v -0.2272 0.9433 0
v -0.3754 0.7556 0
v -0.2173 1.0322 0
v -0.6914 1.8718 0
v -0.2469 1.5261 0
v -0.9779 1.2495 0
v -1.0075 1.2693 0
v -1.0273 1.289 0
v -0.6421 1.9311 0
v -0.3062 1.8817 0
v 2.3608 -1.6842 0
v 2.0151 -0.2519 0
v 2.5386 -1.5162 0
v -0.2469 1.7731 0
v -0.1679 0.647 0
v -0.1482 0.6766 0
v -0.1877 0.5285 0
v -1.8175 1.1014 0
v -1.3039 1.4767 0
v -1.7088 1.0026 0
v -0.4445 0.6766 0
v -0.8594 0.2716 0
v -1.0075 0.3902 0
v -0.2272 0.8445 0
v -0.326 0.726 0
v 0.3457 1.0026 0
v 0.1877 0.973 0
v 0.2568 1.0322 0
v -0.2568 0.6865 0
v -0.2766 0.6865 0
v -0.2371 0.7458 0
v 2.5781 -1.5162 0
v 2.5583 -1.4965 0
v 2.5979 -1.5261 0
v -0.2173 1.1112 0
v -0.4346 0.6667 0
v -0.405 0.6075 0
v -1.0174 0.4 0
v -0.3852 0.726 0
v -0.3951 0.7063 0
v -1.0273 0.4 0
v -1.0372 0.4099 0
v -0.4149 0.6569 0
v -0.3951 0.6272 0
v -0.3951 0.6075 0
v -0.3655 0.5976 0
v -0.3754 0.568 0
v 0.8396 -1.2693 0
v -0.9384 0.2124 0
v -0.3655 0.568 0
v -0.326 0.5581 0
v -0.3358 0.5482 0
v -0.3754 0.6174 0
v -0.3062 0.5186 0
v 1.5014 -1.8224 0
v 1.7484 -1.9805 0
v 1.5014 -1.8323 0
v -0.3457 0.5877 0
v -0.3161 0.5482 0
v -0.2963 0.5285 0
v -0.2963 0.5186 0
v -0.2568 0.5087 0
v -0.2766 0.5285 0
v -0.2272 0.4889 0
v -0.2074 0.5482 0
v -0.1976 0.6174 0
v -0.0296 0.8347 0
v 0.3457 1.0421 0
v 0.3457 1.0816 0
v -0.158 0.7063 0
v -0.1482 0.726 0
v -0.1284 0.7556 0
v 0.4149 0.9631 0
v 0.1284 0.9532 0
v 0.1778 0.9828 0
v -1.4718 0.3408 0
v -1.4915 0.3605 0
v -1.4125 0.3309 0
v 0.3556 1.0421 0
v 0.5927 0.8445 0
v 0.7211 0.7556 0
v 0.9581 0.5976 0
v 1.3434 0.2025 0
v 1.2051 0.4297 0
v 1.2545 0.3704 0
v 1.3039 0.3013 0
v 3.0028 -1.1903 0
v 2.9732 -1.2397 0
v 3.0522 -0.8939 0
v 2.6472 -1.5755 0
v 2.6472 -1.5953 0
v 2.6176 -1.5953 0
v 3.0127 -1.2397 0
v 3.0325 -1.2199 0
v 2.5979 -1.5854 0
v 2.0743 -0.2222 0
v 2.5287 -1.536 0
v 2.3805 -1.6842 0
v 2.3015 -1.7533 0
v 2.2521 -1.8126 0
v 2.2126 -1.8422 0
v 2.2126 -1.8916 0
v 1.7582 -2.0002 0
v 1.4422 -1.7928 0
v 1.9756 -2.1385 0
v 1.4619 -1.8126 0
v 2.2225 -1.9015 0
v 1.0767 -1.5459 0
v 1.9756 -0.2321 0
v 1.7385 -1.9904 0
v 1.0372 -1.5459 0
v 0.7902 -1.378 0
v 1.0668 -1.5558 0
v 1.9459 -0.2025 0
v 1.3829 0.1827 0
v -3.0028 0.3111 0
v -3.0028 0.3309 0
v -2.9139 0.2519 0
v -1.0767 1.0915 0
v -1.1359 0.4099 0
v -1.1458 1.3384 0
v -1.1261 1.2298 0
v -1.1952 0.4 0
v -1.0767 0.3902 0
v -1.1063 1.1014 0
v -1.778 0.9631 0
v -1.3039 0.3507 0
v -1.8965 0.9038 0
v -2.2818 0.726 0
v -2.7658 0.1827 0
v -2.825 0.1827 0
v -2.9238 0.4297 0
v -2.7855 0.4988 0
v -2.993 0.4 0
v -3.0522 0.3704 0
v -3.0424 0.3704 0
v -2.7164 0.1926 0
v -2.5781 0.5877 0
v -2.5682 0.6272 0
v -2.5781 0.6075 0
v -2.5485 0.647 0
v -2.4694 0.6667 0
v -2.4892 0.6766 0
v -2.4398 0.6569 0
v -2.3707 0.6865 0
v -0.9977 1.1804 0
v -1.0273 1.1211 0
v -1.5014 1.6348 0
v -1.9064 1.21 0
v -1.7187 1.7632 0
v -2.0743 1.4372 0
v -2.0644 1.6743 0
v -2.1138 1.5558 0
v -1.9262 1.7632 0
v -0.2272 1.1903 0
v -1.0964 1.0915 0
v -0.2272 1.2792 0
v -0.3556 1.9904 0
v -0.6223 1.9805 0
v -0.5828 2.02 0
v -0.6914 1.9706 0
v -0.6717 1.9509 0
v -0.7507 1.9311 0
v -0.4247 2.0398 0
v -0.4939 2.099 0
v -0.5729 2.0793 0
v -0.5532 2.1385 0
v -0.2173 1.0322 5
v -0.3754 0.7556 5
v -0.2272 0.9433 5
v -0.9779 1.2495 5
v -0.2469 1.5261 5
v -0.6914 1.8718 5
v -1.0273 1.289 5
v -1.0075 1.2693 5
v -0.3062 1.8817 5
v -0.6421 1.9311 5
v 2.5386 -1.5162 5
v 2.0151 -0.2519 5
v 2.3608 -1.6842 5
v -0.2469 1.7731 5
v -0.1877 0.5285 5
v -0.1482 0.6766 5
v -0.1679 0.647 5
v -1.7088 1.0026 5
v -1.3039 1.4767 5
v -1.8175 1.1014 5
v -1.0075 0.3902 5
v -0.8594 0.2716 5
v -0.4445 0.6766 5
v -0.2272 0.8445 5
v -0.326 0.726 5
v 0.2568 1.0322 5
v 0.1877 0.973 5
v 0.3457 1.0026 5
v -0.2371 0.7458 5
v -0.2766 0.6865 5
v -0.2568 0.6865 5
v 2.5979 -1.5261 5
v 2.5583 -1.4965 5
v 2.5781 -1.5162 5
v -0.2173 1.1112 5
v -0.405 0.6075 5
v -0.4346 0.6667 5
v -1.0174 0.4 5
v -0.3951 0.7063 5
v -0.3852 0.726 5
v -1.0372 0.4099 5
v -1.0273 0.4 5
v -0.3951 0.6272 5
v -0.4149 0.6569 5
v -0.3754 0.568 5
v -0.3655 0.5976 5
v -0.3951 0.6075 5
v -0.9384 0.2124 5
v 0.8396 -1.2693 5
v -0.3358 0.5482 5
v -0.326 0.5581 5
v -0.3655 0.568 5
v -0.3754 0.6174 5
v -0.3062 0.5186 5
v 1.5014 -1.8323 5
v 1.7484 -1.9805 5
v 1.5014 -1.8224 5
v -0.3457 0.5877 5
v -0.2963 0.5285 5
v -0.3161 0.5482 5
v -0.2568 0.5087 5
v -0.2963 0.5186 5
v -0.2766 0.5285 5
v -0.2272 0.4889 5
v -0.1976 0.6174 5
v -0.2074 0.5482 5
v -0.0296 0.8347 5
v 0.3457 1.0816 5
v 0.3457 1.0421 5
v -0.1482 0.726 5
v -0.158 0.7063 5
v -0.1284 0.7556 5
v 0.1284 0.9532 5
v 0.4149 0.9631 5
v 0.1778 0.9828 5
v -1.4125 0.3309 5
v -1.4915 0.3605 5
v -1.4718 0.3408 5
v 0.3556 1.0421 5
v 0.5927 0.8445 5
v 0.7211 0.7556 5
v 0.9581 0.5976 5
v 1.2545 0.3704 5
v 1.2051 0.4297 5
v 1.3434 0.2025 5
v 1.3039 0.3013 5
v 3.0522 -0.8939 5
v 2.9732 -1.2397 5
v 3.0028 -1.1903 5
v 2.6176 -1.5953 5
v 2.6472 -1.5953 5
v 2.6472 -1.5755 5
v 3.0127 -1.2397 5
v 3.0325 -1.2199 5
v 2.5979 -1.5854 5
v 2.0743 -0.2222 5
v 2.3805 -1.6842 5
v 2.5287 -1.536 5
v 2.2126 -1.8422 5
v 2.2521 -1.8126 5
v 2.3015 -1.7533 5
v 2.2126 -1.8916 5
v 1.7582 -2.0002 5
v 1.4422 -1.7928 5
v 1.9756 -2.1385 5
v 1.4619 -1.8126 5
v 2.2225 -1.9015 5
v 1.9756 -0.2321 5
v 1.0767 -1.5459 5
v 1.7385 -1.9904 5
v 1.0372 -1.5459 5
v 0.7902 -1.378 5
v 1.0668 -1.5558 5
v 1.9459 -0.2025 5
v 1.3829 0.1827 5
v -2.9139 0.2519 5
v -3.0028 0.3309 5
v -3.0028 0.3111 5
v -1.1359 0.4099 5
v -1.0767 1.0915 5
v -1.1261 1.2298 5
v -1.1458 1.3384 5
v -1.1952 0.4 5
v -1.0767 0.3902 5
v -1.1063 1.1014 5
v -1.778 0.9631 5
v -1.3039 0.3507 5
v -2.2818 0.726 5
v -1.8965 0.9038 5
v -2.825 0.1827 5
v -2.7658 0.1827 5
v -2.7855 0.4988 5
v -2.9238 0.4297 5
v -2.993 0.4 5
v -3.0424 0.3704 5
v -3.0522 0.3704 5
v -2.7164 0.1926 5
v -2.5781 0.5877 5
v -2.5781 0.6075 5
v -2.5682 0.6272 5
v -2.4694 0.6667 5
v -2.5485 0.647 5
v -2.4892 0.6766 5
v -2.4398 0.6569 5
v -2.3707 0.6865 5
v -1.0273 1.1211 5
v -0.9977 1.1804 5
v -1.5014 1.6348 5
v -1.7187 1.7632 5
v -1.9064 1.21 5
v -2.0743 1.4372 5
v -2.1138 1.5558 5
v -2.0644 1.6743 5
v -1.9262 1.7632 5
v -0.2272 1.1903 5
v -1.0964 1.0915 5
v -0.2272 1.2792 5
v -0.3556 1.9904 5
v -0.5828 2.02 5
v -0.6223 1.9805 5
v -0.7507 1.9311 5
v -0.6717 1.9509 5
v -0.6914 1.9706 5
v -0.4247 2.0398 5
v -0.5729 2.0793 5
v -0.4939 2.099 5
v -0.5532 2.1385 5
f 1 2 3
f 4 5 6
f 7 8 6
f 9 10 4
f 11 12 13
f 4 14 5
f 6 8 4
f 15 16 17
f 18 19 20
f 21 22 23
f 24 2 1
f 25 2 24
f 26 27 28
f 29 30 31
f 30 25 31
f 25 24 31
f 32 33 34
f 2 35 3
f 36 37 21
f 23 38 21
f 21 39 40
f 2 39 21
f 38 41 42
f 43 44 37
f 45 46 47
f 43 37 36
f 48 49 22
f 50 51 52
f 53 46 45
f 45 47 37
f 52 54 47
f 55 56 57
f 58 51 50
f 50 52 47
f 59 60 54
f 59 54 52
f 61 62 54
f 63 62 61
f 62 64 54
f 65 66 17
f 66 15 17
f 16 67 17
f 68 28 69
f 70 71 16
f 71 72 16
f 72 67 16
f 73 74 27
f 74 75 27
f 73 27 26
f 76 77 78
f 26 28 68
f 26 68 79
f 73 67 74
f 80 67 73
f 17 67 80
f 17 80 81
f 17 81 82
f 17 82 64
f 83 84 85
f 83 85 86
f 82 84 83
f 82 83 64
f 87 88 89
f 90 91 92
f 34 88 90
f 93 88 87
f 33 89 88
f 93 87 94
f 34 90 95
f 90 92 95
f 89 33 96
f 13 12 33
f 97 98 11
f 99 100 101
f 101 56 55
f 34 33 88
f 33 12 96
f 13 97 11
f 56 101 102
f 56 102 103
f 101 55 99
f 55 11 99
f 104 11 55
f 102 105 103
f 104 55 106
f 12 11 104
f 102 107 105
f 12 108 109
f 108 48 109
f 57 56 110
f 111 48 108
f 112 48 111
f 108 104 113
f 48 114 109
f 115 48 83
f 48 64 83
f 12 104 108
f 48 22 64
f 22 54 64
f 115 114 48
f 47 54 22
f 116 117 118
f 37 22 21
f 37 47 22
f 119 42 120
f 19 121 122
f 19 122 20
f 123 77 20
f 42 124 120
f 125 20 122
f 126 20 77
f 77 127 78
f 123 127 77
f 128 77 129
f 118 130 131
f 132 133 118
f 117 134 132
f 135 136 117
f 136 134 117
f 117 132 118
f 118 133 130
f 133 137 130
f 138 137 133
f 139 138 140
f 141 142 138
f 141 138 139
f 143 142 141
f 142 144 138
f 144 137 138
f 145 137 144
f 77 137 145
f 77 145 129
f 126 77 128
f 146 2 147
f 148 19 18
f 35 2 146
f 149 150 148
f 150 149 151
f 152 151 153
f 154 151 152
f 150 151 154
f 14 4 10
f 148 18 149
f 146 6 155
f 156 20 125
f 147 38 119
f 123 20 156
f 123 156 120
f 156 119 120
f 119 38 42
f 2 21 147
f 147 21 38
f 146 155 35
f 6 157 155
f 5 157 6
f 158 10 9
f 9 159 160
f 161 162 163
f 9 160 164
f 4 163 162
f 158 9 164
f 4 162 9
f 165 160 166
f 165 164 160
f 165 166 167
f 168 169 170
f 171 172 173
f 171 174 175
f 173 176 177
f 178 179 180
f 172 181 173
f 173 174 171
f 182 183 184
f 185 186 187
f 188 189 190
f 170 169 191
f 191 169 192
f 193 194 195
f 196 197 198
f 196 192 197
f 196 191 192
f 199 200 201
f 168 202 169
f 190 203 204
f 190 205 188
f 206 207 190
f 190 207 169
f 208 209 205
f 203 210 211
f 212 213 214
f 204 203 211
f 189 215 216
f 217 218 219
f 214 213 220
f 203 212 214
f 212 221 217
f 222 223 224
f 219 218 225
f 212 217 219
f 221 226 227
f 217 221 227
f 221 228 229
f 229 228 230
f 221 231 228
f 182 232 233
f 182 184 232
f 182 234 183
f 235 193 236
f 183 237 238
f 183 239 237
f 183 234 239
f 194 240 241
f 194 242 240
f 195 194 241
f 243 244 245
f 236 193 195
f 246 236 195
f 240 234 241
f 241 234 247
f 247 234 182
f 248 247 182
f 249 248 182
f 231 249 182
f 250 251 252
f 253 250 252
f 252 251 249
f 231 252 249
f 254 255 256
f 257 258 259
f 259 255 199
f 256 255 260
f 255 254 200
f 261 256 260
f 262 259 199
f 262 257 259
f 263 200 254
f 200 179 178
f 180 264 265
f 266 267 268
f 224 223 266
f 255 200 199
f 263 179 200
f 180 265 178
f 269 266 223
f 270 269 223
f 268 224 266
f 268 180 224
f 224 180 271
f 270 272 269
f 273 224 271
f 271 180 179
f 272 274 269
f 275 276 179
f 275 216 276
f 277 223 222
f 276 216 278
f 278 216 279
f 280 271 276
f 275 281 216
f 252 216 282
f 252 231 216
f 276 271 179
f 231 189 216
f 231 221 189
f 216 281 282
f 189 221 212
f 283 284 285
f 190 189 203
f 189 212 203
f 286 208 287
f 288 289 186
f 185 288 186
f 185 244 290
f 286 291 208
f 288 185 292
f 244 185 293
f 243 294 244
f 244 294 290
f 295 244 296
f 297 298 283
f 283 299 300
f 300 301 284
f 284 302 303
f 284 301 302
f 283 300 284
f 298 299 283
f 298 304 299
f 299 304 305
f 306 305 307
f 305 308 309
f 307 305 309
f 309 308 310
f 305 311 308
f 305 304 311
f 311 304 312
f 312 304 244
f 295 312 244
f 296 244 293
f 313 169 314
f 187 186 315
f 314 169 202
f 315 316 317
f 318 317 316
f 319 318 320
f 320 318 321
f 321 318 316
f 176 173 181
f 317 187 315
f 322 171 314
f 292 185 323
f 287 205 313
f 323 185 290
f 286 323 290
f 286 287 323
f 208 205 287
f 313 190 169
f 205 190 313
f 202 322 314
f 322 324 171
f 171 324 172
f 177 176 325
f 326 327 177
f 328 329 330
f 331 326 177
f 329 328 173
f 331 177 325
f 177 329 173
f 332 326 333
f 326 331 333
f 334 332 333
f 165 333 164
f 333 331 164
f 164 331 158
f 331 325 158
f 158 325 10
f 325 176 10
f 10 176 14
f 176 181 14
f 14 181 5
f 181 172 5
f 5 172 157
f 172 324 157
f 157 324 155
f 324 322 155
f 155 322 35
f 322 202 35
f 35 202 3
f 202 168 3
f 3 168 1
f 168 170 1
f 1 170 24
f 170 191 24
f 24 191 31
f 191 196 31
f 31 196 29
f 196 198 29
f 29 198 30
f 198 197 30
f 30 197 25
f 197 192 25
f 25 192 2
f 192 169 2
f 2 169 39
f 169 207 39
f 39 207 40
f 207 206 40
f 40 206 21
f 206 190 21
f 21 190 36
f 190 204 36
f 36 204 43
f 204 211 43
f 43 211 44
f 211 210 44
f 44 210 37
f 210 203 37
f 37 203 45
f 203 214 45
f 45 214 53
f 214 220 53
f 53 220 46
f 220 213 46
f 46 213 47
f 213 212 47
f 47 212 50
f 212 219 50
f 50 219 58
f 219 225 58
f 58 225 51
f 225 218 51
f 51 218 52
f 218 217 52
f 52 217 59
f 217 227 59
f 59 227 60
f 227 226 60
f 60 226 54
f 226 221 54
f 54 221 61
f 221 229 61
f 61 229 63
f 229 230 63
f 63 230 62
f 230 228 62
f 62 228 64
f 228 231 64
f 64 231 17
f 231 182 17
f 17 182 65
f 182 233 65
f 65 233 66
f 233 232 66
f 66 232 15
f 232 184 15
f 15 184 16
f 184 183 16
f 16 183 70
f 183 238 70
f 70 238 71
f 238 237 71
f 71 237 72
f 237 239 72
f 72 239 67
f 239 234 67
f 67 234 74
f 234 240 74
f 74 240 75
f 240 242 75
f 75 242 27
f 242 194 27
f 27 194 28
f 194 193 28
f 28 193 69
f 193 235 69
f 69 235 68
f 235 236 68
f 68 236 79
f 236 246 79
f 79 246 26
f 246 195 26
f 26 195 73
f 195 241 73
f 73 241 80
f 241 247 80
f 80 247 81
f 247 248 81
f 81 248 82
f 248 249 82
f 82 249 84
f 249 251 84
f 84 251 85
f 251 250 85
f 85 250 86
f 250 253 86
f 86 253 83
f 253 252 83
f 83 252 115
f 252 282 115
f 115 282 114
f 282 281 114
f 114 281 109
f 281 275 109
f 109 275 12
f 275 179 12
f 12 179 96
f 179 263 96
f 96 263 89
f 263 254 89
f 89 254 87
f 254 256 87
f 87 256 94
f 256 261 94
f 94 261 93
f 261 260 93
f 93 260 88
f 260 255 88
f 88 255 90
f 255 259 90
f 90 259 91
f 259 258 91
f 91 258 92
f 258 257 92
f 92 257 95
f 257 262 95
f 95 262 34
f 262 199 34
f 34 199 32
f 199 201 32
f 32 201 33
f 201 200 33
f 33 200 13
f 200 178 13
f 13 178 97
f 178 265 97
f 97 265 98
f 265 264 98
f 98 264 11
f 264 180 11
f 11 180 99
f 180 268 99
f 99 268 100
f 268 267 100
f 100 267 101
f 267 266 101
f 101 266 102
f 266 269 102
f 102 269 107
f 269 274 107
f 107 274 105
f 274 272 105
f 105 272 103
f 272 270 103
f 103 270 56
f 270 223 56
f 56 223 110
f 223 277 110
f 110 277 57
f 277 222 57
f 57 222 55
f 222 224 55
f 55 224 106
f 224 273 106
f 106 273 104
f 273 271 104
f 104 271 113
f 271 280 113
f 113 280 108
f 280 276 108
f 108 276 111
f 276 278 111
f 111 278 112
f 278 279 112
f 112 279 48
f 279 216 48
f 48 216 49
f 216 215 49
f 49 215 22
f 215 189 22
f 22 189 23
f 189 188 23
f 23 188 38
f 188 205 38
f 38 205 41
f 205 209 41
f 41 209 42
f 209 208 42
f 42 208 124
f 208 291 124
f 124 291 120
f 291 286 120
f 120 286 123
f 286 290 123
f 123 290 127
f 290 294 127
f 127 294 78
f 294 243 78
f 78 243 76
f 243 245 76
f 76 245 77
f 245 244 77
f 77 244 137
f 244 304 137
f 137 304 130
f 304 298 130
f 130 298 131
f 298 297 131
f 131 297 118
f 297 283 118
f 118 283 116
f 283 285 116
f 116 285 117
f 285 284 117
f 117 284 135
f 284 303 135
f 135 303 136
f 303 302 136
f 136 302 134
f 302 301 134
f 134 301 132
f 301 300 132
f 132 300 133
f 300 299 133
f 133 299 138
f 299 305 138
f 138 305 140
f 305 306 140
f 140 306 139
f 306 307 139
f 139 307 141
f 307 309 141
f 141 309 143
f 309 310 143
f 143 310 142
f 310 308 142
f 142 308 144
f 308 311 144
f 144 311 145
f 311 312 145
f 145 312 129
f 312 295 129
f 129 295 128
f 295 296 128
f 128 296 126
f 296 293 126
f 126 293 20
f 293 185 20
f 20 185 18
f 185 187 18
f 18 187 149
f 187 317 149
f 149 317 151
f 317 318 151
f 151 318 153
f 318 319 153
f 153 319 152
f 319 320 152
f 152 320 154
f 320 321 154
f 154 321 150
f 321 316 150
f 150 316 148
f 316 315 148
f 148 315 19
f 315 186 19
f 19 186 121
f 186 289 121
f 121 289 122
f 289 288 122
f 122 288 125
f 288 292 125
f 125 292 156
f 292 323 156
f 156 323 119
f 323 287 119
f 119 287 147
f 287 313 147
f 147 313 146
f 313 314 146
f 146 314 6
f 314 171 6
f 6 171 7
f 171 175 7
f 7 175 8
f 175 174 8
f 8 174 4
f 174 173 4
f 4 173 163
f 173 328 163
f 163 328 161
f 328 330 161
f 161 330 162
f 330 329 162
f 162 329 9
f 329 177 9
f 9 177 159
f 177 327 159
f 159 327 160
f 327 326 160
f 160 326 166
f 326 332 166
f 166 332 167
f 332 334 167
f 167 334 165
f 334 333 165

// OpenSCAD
// Module names are of the form poly_<inkscape-path-id>().  As a result,
// you can associate a polygon in this OpenSCAD program with the corresponding
// SVG element in the Inkscape document by looking for the XML element with
// the attribute id="inkscape-path-id".

// fudge value is used to ensure that subtracted solids are a tad taller
// in the z dimension than the polygon being subtracted from.  This helps
// keep the resulting .stl file manifold.
fudge = 0.1;

module poly_path4362(h)
{
  scale([25.4/90, -25.4/90, 1]) union()
  {
    linear_extrude(height=h)
      polygon([[9.380000,5.652500],[9.275000,5.652500],[9.205000,5.617500],[9.205000,5.547500],[9.205000,5.407500],[9.135000,5.372500],[9.065000,5.302500],[8.995000,5.372500],[8.960000,5.442500],[8.680000,5.722500],[8.435000,5.967500],[8.365000,5.967500],[8.155000,6.212500],[7.980000,6.422500],[7.840000,6.527500],[7.840000,6.632500],[7.840000,6.702500],[7.875000,6.737500],[7.000000,7.577500],[6.230000,7.087500],[6.195000,7.017500],[6.160000,7.052500],[5.320000,6.492500],[5.320000,6.457500],[5.180000,6.422500],[5.110000,6.352500],[3.780000,5.512500],[3.815000,5.477500],[3.675000,5.477500],[2.800000,4.882500],[2.975000,4.497500],[-3.325000,-0.752500],[-3.045000,-0.962500],[-3.570000,-1.382500],[-3.605000,-1.417500],[-3.640000,-1.417500],[-3.675000,-1.452500],[-3.815000,-1.382500],[-4.025000,-1.452500],[-4.235000,-1.417500],[-4.620000,-1.242500],[-5.005000,-1.172500],[-5.215000,-1.207500],[-5.250000,-1.242500],[-5.285000,-1.277500],[-9.625000,-0.682500],[-9.800000,-0.647500],[-10.010000,-0.647500],[-10.325000,-0.892500],[-10.640000,-1.102500],[-10.640000,-1.172500],[-10.815000,-1.312500],[-10.780000,-1.312500],[-10.605000,-1.417500],[-10.360000,-1.522500],[-10.150000,-1.627500],[-9.870000,-1.767500],[-9.135000,-2.082500],[-9.135000,-2.152500],[-9.100000,-2.222500],[-9.065000,-2.257500],[-9.030000,-2.292500],[-8.960000,-2.327500],[-8.820000,-2.397500],[-8.750000,-2.362500],[-8.645000,-2.327500],[-8.400000,-2.432500],[-8.085000,-2.572500],[-6.720000,-3.202500],[-6.300000,-3.412500],[-6.055000,-3.552500],[-6.440000,-3.902500],[-6.755000,-4.287500],[-7.350000,-5.092500],[-7.490000,-5.512500],[-7.315000,-5.932500],[-6.825000,-6.247500],[-6.090000,-6.247500],[-5.320000,-5.792500],[-4.620000,-5.232500],[-4.340000,-4.987500],[-4.060000,-4.742500],[-3.990000,-4.357500],[-3.920000,-3.902500],[-3.885000,-3.867500],[-3.815000,-3.867500],[-3.640000,-3.972500],[-3.535000,-4.182500],[-3.465000,-4.427500],[-3.570000,-4.497500],[-3.640000,-4.567500],[-2.450000,-6.632500],[-2.660000,-6.842500],[-2.450000,-6.982500],[-2.380000,-6.912500],[-2.275000,-6.842500],[-2.205000,-7.017500],[-2.065000,-7.157500],[-2.030000,-7.367500],[-1.960000,-7.577500],[-1.750000,-7.437500],[-1.505000,-7.227500],[-1.260000,-7.052500],[-1.085000,-6.667500],[-0.875000,-6.282500],[-0.875000,-5.407500],[-0.805000,-4.532500],[-0.805000,-4.217500],[-0.770000,-3.937500],[-0.770000,-3.657500],[-0.805000,-3.342500],[-0.805000,-2.992500],[-0.840000,-2.642500],[-0.910000,-2.432500],[-0.980000,-2.432500],[-1.155000,-2.572500],[-1.330000,-2.677500],[-1.365000,-2.572500],[-1.400000,-2.502500],[-1.575000,-2.397500],[-1.540000,-2.362500],[-1.470000,-2.327500],[-1.400000,-2.222500],[-1.435000,-2.152500],[-1.400000,-2.152500],[-1.330000,-2.187500],[-1.295000,-2.117500],[-1.330000,-2.012500],[-1.295000,-2.012500],[-1.225000,-2.082500],[-1.155000,-1.977500],[-1.190000,-1.942500],[-1.120000,-1.942500],[-1.050000,-1.872500],[-1.085000,-1.837500],[-1.050000,-1.837500],[-0.980000,-1.872500],[-0.910000,-1.802500],[-0.805000,-1.732500],[-0.735000,-1.802500],[-0.665000,-1.872500],[-0.735000,-1.942500],[-0.700000,-2.187500],[-0.595000,-2.292500],[-0.525000,-2.397500],[-0.560000,-2.502500],[-0.525000,-2.572500],[-0.455000,-2.677500],[-0.105000,-2.957500],[0.315000,-3.272500],[0.455000,-3.377500],[0.630000,-3.482500],[0.665000,-3.447500],[0.910000,-3.657500],[1.225000,-3.832500],[1.225000,-3.797500],[1.225000,-3.692500],[1.260000,-3.692500],[1.225000,-3.552500],[1.470000,-3.412500],[1.680000,-3.272500],[2.100000,-2.992500],[2.555000,-2.677500],[3.395000,-2.117500],[4.270000,-1.522500],[4.445000,-1.312500],[4.620000,-1.067500],[4.690000,-0.892500],[4.760000,-0.717500],[4.830000,-0.682500],[4.900000,-0.647500],[6.895000,0.717500],[7.000000,0.822500],[7.140000,0.892500],[7.280000,0.822500],[7.350000,0.787500],[10.815000,3.167500],[10.640000,4.217500],[10.675000,4.252500],[10.745000,4.322500],[10.675000,4.392500],[10.605000,4.392500],[10.535000,4.392500],[9.415000,5.547500],[9.380000,5.582500],[9.380000,5.652500]]);
  }
}

poly_path4362(5);
